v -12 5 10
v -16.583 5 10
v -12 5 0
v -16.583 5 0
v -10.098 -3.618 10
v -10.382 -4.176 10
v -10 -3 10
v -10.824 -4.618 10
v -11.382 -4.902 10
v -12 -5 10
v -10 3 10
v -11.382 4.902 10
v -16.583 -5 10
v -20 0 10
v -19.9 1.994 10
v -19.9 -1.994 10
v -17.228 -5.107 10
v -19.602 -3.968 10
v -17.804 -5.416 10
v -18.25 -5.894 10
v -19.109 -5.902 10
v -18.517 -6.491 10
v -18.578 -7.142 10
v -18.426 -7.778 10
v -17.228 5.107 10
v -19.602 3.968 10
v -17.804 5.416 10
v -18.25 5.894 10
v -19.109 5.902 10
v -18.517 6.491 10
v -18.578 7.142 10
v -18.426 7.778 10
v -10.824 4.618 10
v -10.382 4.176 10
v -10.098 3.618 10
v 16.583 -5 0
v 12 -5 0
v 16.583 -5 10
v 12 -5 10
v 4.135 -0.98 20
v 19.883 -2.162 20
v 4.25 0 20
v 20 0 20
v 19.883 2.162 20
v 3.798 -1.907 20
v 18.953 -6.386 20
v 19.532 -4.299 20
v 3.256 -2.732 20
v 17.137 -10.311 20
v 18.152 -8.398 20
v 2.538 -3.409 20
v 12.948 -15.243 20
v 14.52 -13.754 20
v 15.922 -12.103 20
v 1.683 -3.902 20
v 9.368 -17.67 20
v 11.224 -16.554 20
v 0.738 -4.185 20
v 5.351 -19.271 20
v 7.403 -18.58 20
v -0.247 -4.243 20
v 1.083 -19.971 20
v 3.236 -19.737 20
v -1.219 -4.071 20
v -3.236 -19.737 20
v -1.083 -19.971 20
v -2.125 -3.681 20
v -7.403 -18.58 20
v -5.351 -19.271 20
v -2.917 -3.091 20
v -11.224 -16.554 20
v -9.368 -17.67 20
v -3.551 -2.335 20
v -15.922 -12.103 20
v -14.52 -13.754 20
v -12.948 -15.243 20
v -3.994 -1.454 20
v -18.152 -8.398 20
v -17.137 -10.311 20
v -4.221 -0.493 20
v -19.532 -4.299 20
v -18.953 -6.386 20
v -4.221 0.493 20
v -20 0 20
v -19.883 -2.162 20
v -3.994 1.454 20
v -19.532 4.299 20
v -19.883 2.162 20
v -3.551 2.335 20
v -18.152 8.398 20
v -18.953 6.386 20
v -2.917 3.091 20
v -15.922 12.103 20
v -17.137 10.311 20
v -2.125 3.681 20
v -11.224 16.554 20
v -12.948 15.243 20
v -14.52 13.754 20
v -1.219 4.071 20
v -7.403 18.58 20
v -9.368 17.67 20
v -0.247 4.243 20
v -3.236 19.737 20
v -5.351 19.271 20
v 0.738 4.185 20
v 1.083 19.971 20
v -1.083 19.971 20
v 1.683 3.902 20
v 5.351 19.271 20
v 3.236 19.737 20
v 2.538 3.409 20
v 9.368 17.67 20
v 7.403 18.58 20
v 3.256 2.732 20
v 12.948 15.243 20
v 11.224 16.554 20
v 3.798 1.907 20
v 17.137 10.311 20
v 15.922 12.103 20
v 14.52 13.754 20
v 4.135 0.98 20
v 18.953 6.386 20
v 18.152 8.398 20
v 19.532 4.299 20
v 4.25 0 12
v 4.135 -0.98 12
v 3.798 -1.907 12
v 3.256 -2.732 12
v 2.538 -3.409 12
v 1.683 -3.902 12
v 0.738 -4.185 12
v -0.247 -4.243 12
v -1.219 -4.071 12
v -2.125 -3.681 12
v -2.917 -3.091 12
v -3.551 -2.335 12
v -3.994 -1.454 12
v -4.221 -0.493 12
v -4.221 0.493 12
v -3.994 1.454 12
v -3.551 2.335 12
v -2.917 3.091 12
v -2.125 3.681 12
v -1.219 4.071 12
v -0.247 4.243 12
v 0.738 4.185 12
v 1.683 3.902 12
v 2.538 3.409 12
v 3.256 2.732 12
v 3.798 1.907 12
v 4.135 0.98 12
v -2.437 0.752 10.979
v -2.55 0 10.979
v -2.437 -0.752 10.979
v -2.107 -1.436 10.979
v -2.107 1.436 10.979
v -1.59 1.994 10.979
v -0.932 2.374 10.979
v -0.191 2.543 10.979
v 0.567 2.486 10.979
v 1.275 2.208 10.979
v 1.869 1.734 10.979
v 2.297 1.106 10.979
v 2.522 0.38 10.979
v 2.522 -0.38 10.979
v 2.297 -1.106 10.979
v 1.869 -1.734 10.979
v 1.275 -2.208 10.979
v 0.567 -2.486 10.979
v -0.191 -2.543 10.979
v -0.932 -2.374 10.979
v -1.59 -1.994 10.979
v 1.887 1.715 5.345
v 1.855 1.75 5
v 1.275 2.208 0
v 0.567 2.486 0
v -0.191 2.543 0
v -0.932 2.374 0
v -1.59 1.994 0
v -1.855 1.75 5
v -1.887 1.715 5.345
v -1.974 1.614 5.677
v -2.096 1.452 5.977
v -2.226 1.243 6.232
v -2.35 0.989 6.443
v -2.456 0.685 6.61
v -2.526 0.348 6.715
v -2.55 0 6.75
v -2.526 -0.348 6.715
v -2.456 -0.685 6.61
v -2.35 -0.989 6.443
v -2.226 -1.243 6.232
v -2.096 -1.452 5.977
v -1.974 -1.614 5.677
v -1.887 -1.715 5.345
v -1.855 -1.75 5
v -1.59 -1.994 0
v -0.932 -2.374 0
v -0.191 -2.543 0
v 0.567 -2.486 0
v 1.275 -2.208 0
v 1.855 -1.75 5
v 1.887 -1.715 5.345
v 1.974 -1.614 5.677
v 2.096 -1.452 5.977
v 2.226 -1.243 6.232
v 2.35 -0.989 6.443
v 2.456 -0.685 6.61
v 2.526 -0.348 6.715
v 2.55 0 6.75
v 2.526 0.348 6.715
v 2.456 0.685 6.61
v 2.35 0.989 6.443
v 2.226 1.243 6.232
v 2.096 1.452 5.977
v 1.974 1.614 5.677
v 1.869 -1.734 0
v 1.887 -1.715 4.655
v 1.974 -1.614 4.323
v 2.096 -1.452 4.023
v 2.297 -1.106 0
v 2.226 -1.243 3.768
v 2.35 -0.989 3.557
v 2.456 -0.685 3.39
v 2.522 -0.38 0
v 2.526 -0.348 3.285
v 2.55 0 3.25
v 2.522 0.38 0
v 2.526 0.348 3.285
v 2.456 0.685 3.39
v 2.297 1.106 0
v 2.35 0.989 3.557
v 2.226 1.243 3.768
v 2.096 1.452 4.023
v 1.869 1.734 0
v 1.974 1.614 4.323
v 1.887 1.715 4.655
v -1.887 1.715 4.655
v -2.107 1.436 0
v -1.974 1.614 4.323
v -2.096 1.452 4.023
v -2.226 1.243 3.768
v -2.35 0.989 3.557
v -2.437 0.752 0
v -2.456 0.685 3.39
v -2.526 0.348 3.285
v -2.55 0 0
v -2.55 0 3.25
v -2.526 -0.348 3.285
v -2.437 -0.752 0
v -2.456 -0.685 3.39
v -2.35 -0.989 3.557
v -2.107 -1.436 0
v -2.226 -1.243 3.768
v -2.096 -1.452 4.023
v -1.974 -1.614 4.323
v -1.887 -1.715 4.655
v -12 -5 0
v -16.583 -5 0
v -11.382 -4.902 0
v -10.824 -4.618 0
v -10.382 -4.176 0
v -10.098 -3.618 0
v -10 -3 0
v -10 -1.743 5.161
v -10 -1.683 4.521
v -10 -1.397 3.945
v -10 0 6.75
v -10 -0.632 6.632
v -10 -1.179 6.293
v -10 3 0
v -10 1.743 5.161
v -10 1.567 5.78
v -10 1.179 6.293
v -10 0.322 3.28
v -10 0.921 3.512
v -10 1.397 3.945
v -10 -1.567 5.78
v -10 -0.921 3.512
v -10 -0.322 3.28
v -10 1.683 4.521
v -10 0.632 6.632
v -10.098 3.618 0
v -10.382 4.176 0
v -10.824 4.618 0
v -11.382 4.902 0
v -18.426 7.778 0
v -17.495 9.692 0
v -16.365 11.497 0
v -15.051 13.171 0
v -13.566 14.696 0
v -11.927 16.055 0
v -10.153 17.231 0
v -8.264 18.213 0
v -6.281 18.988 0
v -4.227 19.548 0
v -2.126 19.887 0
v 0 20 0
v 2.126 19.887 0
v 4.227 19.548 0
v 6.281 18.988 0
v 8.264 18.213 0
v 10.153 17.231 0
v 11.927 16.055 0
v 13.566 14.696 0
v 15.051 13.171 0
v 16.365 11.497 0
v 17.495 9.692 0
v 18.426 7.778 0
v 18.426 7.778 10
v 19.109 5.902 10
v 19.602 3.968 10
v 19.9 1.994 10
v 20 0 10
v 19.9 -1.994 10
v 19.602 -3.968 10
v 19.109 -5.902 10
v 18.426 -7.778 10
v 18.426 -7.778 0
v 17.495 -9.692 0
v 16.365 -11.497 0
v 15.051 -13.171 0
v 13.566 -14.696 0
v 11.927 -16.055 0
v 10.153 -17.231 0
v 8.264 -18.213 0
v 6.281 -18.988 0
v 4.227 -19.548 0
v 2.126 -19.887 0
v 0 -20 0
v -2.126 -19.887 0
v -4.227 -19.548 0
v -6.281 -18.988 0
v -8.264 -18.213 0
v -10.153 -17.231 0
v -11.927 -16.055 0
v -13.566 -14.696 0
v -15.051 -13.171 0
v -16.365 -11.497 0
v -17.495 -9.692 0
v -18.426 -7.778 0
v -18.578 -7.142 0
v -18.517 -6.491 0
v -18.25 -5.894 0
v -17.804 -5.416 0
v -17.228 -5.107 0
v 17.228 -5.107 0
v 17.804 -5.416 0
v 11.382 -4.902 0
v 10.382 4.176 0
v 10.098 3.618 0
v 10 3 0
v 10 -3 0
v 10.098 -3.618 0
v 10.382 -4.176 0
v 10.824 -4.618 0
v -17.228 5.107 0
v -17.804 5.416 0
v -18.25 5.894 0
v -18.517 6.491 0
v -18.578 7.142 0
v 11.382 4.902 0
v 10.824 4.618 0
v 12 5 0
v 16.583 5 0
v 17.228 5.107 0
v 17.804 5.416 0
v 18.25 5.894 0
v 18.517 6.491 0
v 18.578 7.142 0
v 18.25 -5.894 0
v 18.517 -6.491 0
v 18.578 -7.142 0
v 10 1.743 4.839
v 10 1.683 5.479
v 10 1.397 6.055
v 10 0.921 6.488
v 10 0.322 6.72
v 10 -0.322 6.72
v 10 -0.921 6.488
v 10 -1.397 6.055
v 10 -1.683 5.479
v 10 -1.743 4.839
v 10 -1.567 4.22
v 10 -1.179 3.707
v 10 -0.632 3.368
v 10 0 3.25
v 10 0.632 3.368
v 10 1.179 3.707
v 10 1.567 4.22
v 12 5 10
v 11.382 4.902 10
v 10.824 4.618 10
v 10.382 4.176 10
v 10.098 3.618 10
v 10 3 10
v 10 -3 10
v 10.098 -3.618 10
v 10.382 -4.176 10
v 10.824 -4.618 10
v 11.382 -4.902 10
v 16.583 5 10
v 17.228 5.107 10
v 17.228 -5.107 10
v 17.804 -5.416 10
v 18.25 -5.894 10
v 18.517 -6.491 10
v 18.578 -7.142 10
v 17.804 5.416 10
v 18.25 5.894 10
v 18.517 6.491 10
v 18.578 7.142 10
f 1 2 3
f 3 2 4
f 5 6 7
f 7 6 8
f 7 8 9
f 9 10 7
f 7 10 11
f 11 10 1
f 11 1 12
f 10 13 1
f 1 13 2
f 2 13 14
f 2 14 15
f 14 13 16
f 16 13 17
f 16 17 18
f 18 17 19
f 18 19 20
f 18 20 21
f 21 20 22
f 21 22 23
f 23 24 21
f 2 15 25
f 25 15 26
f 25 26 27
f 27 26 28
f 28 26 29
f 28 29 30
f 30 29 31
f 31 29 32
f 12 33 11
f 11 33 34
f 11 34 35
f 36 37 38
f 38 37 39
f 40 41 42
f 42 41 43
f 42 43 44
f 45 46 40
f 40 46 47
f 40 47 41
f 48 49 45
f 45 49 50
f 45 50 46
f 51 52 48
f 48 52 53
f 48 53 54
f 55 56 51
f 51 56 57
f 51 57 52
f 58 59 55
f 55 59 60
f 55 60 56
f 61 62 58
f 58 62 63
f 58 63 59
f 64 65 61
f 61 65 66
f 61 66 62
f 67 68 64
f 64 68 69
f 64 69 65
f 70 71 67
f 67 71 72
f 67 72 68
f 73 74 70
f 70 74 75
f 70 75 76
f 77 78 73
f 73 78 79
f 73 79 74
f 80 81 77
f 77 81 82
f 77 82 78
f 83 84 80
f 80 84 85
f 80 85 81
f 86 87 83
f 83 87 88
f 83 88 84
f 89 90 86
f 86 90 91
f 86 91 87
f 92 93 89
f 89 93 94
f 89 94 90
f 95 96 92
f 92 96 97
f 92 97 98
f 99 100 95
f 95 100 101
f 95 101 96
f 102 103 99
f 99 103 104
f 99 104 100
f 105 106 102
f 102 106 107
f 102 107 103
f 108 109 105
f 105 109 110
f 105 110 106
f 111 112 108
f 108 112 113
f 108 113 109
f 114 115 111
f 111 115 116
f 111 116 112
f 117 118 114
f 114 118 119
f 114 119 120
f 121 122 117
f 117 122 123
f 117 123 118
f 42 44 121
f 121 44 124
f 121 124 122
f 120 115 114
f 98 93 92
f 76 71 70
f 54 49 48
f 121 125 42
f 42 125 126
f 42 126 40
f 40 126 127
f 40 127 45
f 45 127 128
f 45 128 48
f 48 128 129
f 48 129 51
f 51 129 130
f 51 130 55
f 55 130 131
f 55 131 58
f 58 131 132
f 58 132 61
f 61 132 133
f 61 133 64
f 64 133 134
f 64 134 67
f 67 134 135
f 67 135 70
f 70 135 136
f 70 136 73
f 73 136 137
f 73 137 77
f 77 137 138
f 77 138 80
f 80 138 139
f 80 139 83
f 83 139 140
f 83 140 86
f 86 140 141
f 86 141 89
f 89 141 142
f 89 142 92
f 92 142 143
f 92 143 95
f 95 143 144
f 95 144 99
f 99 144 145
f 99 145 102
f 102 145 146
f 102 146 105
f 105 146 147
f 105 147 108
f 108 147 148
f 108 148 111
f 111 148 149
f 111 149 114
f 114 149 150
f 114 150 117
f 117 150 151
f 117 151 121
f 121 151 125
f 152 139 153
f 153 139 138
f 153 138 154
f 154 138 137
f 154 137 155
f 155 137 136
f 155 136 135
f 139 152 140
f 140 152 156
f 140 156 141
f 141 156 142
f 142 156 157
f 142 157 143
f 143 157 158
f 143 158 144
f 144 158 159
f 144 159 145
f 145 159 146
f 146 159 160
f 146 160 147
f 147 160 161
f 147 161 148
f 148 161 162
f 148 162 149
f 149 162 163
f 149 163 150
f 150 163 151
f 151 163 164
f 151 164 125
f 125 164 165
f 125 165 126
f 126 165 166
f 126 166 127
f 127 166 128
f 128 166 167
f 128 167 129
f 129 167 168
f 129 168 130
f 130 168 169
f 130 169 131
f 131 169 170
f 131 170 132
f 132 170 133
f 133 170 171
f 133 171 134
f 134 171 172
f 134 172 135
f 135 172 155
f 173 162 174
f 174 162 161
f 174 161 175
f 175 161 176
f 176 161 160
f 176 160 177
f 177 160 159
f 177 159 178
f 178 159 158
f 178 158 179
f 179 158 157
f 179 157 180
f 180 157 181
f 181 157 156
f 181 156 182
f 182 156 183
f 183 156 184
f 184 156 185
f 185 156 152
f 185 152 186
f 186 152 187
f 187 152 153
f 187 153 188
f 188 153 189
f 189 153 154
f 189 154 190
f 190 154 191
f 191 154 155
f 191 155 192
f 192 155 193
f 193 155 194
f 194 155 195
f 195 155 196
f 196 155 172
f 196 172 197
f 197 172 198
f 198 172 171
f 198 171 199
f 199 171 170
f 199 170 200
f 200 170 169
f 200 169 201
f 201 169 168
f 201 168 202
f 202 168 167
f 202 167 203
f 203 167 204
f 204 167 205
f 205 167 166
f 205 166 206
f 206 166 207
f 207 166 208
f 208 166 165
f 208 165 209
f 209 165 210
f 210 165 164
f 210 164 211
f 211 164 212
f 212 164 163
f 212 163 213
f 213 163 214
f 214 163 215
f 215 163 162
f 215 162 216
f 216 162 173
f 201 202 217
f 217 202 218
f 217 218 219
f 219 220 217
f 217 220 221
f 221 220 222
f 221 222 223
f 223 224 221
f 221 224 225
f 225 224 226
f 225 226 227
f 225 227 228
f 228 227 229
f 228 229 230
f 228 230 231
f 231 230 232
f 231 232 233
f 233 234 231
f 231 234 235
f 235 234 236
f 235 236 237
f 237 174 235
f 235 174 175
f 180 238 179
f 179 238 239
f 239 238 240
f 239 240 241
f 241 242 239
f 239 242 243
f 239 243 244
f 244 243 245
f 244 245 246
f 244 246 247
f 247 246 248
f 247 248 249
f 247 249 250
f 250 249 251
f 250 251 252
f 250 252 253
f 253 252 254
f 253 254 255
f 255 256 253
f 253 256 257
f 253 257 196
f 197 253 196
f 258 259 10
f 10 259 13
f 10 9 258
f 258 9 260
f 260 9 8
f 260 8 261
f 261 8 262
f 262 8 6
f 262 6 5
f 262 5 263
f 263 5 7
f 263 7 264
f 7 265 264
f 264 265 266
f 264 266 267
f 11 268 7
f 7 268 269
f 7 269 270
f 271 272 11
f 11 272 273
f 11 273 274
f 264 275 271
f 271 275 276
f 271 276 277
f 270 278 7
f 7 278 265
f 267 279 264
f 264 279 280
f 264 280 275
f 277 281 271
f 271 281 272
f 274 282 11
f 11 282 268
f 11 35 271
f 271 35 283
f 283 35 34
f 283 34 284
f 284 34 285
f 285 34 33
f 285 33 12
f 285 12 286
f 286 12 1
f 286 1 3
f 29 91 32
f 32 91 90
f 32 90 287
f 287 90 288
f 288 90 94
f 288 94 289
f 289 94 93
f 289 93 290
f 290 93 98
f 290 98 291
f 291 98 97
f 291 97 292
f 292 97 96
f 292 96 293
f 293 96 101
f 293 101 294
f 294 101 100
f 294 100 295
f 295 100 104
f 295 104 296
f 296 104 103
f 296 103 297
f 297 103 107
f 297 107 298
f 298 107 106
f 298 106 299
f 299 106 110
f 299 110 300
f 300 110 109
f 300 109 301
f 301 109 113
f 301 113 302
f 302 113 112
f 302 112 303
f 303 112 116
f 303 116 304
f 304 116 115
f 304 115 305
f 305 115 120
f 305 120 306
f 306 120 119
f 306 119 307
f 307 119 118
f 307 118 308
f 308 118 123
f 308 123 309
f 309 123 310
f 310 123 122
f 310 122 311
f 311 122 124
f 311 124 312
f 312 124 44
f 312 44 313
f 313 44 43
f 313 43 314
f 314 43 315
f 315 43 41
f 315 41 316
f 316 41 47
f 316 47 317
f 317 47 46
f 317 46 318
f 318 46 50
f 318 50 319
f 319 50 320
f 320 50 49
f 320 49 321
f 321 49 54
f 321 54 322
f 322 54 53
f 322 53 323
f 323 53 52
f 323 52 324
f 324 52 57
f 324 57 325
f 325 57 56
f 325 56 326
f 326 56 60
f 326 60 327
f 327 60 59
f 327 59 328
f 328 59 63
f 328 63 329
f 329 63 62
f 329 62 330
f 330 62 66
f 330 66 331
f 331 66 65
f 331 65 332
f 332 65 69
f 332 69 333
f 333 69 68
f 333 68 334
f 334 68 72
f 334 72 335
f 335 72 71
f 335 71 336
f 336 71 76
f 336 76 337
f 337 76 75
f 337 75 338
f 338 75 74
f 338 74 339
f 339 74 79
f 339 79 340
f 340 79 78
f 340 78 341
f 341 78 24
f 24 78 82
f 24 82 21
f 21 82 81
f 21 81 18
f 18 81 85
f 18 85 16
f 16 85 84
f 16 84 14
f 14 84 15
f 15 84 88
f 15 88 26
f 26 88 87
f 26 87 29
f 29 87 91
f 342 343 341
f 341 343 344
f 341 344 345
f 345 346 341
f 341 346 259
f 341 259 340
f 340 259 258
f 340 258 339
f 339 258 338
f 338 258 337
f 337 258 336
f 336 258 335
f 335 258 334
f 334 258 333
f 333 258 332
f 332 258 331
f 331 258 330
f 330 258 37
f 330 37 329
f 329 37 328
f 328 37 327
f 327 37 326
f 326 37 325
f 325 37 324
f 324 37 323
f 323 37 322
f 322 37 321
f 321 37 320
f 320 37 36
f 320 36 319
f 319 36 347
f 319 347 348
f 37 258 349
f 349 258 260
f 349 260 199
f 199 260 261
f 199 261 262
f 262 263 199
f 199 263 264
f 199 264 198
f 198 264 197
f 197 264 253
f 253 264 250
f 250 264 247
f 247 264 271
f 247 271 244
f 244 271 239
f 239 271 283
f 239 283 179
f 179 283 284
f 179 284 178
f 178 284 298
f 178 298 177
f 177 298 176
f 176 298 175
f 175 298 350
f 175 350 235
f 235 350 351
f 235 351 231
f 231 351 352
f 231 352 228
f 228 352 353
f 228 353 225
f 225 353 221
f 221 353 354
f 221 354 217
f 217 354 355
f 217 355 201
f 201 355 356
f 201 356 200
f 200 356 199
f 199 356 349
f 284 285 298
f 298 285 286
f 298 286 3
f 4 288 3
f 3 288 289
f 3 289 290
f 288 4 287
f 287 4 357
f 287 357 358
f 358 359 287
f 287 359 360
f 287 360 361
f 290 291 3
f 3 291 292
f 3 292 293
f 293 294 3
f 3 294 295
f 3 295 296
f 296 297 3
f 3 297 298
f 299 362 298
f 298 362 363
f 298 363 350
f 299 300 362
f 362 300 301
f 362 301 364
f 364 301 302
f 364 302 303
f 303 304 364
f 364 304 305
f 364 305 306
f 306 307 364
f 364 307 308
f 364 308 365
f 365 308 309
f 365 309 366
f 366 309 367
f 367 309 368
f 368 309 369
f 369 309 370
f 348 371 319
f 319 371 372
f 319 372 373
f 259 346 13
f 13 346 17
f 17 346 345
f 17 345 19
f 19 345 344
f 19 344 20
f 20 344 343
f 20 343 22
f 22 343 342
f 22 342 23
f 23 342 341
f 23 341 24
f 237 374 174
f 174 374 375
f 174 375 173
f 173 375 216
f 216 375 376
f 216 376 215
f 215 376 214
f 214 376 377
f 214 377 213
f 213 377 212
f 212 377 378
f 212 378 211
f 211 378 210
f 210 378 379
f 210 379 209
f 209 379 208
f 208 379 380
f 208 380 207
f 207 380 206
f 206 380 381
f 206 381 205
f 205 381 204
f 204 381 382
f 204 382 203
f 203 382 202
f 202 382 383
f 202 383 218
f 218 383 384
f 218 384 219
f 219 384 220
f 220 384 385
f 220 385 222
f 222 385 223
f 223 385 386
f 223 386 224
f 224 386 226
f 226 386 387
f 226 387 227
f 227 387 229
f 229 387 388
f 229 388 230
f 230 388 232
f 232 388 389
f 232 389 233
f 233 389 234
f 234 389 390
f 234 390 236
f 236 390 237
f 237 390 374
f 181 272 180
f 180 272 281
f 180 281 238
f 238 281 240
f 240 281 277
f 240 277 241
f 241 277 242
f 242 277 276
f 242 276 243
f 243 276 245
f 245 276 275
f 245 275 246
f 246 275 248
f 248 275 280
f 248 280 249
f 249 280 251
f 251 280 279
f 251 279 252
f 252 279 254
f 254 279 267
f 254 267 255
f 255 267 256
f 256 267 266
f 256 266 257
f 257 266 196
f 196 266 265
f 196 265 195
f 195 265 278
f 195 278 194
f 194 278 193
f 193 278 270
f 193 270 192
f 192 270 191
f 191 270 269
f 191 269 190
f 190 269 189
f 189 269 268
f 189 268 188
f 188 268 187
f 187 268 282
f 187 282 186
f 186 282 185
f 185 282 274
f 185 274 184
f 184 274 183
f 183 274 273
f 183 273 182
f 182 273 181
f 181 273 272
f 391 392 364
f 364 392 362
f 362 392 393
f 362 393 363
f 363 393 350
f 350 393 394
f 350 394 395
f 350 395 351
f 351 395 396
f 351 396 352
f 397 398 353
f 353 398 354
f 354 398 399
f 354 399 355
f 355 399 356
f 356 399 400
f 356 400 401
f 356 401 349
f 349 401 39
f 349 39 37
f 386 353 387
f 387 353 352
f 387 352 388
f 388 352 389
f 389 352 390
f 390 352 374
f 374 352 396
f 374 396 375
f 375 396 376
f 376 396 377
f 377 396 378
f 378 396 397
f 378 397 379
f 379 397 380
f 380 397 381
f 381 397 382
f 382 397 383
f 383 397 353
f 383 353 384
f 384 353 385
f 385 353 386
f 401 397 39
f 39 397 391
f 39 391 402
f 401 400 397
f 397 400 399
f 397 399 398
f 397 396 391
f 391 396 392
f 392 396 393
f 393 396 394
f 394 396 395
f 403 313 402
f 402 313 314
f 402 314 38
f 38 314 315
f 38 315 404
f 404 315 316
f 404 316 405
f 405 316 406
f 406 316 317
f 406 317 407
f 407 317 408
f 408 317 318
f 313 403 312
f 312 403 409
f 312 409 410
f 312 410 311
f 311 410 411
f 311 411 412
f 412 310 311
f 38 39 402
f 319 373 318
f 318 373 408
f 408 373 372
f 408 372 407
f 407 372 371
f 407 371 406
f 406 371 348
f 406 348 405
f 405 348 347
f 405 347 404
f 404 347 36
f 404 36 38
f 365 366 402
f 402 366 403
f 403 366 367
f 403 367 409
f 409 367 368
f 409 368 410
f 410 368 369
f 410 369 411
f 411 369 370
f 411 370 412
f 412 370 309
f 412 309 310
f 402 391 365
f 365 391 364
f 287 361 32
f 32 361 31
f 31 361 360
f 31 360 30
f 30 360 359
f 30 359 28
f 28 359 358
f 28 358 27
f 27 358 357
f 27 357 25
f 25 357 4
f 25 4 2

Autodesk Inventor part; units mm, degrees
ref_plane "YZ Plane" through (0, 0, 0) normal (1, 0, 0) x (0, 1, 0)
ref_plane "XZ Plane" through (0, 0, 0) normal (0, 1, 0) x (-1, 0, 0)
ref_plane "XY Plane" through (0, 0, 0) normal (0, 0, 1) x (1, 0, 0)
sketch "Sketch1" plane through (0, 0, 0) normal (0, 0, 1) x (1, 0, 0)
  point P0 (0, 0)
sketch "Sketch2" plane through (0, 0, 0) normal (0, 0, 1) x (1, 0, 0)
  circle A0 centre (0, 0) radius 20
  dimension "d0" = 40
extrude "Extrusion1" add sketch "Sketch2" along normal blind 20
sketch "Sketch3" plane through (0, 0, 20) normal (0, 0, 1) x (1, 0, 0)
  point P0 (0, 0)
  point P1 (0, 0)
hole "Hole1" at (0, 0, 20) direction (0, 0, -1) diameter 5.1 end through all
sketch "Sketch4" plane through (0, 0, 20) normal (0, 0, 1) x (1, 0, 0)
  point P0 (0, 0)
  point P1 (0, 0)
hole "Hole2" at (0, 0, 20) direction (0, 0, -1) diameter 8.5 depth 8 tip angle 118
sketch "Sketch5" plane through (0, 0, 0) normal (0, 0, -1) x (-1, 0, 0)
  line L0 (0, 0) -> (-10, 0)
  line L1 (-10, 0) -> (10, 0)
  line L2 (10, 0) -> (10, -5)
  line L3 (10, -5) -> (20, -5)
  line L4 (20, -5) -> (20, 5)
  line L5 (20, 5) -> (10, 5)
  line L6 (10, 5) -> (10, -5)
  line L7 (-10, -5) -> (-20, -5)
  line L8 (-20, -5) -> (-20, 5)
  line L9 (-20, 5) -> (-10, 5)
  line L10 (-10, 5) -> (-10, -5)
  dimension "d17" = 10
  dimension "d18" = 20
  dimension "d19" = 5
  dimension "d20" = 10
  dimension "d21" = 10
extrude "Extrusion2" cut sketch "Sketch5" against normal blind 10
sketch "Sketch6" plane through (10, -5, 0) normal (1, 0, 0) x (0, 0, -1)
  line L0 (0, 5) -> (-10, 5)
  line L1 (-10, 0) -> (-10, 10) projected
  point P0 (-5, 5)
hole "Hole3" at (10, 0, 5) direction (-1, 0, 0) diameter 3.5 end through all
fillet "Fillet1" radius 2 8 edges at (10, 5, 5) (10, -5, 5) (19.3649, -5, 5) (19.3649, 5, 5) (-19.3649, 5, 5) (-19.3649, -5, 5) (-10, 5, 5) (-10, -5, 5)
properties part number "Tripod Mount"
